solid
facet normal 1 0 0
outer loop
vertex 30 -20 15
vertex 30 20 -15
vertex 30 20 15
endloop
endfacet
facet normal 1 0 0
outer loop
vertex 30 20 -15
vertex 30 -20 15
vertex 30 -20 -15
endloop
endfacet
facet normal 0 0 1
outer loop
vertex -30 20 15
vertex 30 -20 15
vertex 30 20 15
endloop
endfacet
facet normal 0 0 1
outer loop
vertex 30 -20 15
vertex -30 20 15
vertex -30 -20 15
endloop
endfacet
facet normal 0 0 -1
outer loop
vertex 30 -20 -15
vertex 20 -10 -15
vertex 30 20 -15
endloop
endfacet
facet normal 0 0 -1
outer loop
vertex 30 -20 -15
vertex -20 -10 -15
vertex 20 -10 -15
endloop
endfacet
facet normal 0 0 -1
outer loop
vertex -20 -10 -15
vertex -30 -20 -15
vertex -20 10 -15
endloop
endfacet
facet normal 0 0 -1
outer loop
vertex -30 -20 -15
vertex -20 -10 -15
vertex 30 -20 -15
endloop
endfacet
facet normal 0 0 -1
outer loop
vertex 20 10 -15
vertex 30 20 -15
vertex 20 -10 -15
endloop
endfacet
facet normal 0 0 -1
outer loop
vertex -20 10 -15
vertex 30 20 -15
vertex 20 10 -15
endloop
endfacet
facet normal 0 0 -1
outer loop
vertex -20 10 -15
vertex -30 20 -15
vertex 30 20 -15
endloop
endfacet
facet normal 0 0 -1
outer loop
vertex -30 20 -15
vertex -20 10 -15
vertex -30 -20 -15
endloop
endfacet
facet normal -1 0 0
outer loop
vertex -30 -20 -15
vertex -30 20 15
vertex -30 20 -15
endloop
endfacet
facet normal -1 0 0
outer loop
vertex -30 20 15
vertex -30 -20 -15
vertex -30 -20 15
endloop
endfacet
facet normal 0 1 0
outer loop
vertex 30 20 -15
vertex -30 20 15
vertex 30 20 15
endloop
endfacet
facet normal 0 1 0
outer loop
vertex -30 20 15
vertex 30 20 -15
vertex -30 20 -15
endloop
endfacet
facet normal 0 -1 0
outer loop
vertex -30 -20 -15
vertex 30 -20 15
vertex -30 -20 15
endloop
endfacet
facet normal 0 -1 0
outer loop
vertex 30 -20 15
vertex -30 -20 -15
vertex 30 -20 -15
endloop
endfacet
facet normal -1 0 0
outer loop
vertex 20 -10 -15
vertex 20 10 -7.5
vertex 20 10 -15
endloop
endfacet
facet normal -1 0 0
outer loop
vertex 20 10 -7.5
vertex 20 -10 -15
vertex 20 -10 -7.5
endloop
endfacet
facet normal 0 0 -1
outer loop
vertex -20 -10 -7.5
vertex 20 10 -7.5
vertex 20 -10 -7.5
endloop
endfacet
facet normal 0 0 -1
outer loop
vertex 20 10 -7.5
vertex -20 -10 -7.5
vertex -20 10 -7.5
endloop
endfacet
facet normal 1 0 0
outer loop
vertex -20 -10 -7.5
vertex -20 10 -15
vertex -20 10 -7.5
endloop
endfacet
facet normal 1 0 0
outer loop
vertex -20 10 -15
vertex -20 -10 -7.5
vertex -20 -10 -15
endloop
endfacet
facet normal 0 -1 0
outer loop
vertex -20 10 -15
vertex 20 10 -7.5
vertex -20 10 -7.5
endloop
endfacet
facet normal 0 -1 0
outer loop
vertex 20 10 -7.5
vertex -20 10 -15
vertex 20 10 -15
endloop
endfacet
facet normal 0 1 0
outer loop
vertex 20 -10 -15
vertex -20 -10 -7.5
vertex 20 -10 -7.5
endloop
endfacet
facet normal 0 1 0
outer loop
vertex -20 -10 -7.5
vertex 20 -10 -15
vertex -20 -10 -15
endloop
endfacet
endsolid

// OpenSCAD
// Dimensions for the base block
base_length = 60;  // Length of the block
base_width = 40;   // Width of the block
base_height = 30;  // Height of the block

// Dimensions for the U-shaped cutout
cutout_width = 20;  // Width of the cutout
cutout_height = 15; // Height of the cutout
cutout_depth = 40;  // Depth of the cutout (increased to match original model)

// Main module to create the base block with the U-shaped cutout
module base_block() {
    // Create the main rectangular block
    difference() {
        cube([base_length, base_width, base_height], center = true);
        
        // Create the U-shaped cutout
        translate([0, 0, -base_height / 2])  // Centrally align the cutout
            cube([cutout_depth, cutout_width, cutout_height], center = true);
    }
}

// Render the base block
base_block();
